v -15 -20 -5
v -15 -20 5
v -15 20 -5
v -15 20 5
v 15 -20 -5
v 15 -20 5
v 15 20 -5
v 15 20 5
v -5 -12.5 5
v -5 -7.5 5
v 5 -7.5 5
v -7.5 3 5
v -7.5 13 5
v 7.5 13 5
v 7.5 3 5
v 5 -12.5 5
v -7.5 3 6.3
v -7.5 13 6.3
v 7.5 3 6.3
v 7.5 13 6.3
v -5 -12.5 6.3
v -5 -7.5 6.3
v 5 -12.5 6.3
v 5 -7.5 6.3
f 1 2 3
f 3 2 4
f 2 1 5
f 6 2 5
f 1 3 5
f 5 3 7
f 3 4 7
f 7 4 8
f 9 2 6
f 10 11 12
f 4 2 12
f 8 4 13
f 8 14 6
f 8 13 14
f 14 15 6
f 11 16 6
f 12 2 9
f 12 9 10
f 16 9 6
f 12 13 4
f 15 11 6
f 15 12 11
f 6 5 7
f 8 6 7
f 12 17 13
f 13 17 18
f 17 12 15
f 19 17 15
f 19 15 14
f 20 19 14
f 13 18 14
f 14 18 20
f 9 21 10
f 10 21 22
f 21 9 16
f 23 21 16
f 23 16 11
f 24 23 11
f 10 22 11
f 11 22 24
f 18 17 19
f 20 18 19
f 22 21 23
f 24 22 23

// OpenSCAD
cube([30, 40, 10], center=true);
#translate([0, -10, 5.6]) cube([10, 5, 1.4], center=true);
#translate([0, 8, 5.6]) cube([15, 10, 1.4], center=true);
